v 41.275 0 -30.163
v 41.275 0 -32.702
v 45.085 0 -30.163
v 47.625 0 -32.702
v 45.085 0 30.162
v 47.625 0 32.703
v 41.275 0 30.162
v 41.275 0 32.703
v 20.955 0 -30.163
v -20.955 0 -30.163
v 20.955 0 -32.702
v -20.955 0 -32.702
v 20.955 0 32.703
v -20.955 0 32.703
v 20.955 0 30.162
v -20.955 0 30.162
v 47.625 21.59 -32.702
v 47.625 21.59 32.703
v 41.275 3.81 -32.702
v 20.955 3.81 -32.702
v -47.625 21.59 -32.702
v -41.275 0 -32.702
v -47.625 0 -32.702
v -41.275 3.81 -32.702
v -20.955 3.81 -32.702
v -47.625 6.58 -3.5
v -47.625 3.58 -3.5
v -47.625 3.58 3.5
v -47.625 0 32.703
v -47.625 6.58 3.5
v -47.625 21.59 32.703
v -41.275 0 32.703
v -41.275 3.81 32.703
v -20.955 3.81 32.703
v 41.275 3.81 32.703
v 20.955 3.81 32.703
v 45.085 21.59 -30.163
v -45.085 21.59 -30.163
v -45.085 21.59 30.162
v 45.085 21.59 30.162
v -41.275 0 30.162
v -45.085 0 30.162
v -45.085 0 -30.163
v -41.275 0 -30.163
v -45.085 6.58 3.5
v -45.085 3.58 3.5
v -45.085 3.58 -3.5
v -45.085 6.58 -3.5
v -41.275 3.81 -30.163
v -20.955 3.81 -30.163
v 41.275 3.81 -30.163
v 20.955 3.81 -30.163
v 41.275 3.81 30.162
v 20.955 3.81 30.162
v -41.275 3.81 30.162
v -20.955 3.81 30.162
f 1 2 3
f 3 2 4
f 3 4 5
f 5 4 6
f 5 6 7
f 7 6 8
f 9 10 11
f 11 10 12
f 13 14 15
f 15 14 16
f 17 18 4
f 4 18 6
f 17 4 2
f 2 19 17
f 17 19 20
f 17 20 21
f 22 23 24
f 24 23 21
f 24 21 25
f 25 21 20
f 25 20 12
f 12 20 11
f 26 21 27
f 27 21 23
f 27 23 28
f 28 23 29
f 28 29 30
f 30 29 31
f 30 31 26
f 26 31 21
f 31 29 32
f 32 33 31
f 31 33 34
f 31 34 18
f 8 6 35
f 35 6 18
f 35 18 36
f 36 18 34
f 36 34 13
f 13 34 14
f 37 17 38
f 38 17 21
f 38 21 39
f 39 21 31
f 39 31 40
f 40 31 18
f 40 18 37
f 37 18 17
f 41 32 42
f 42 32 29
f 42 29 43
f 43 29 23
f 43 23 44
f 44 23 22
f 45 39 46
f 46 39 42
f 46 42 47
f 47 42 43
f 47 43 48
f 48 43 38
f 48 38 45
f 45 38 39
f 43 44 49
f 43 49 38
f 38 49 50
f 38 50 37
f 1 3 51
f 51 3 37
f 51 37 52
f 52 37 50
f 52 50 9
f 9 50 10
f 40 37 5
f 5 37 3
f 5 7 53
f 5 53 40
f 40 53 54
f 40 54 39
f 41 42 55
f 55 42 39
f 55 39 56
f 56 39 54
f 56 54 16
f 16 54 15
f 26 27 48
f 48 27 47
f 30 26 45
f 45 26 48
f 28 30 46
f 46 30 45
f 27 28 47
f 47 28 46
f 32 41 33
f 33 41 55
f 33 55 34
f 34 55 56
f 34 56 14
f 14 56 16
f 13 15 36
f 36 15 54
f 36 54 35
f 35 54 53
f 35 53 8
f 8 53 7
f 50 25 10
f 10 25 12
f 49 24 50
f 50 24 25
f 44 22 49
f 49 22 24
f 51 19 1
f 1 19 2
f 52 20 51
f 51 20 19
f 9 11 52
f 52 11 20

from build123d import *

# Parameters (mm, degrees)
SKETCH1_W               = 95.25
SKETCH1_H               = 65.405
BOSS_EXTRUDE1_DEPTH     = 21.59
SKETCH2_W               = 90.17
SKETCH2_H               = 60.325
CUT_EXTRUDE1_DEPTH      = 21.59
CUT_EXTRUDE2_REACH      = 104.996
SKETCH3_W               = 7
SKETCH3_H               = 3
CUT_EXTRUDE3_DEPTH      = 84.738179763
CUT_EXTRUDE3_DEPTH_BACK = 84.738179763
SKETCH4_W               = 20.32
SKETCH4_H               = 3.81


with BuildPart() as part:
    # Sketch1 → Boss-Extrude1 (new body)
    with BuildSketch(Plane(origin=(0, 0, 0), x_dir=(1, 0, 0), z_dir=(0, 1, 0))):
        Rectangle(SKETCH1_W, SKETCH1_H)
    extrude(amount=BOSS_EXTRUDE1_DEPTH)

    # Sketch2 → Cut-Extrude1 (cut)
    with BuildSketch(Plane(origin=(0, 21.59, 0), x_dir=(1, 0, 0), z_dir=(0, 1, 0))):
        Rectangle(SKETCH2_W, SKETCH2_H)
    extrude(amount=-CUT_EXTRUDE1_DEPTH, mode=Mode.SUBTRACT)

    # Sketch3 → Cut-Extrude2 (cut, up to next)
    with BuildSketch(Plane.ZY.offset(47.625), mode=Mode.PRIVATE) as cut_extrude2_sk1:
        with Locations((0, 5.08)):
            Rectangle(SKETCH3_W, SKETCH3_H)
    cut_extrude2_tool1 = extrude(cut_extrude2_sk1.sketch, amount=-CUT_EXTRUDE2_REACH, mode=Mode.PRIVATE) & part.part
    add(cut_extrude2_tool1.solids().sort_by_distance((-47.625, 5.08, 0))[0], mode=Mode.SUBTRACT)

    # Sketch4 → Cut-Extrude3 (cut, two sides: drawn at the far end of the back side and taken through both)
    with BuildSketch(Plane(origin=(0, 0, -32.7025), x_dir=(-1, 0, 0), z_dir=(0, 0, -1)).offset(-CUT_EXTRUDE3_DEPTH_BACK)):
        with Locations((-31.115, 1.905)):
            Rectangle(SKETCH4_W, SKETCH4_H)
        with Locations((31.115, 1.905)):
            Rectangle(SKETCH4_W, SKETCH4_H)
    extrude(amount=CUT_EXTRUDE3_DEPTH + CUT_EXTRUDE3_DEPTH_BACK, mode=Mode.SUBTRACT)


solid = part.part
